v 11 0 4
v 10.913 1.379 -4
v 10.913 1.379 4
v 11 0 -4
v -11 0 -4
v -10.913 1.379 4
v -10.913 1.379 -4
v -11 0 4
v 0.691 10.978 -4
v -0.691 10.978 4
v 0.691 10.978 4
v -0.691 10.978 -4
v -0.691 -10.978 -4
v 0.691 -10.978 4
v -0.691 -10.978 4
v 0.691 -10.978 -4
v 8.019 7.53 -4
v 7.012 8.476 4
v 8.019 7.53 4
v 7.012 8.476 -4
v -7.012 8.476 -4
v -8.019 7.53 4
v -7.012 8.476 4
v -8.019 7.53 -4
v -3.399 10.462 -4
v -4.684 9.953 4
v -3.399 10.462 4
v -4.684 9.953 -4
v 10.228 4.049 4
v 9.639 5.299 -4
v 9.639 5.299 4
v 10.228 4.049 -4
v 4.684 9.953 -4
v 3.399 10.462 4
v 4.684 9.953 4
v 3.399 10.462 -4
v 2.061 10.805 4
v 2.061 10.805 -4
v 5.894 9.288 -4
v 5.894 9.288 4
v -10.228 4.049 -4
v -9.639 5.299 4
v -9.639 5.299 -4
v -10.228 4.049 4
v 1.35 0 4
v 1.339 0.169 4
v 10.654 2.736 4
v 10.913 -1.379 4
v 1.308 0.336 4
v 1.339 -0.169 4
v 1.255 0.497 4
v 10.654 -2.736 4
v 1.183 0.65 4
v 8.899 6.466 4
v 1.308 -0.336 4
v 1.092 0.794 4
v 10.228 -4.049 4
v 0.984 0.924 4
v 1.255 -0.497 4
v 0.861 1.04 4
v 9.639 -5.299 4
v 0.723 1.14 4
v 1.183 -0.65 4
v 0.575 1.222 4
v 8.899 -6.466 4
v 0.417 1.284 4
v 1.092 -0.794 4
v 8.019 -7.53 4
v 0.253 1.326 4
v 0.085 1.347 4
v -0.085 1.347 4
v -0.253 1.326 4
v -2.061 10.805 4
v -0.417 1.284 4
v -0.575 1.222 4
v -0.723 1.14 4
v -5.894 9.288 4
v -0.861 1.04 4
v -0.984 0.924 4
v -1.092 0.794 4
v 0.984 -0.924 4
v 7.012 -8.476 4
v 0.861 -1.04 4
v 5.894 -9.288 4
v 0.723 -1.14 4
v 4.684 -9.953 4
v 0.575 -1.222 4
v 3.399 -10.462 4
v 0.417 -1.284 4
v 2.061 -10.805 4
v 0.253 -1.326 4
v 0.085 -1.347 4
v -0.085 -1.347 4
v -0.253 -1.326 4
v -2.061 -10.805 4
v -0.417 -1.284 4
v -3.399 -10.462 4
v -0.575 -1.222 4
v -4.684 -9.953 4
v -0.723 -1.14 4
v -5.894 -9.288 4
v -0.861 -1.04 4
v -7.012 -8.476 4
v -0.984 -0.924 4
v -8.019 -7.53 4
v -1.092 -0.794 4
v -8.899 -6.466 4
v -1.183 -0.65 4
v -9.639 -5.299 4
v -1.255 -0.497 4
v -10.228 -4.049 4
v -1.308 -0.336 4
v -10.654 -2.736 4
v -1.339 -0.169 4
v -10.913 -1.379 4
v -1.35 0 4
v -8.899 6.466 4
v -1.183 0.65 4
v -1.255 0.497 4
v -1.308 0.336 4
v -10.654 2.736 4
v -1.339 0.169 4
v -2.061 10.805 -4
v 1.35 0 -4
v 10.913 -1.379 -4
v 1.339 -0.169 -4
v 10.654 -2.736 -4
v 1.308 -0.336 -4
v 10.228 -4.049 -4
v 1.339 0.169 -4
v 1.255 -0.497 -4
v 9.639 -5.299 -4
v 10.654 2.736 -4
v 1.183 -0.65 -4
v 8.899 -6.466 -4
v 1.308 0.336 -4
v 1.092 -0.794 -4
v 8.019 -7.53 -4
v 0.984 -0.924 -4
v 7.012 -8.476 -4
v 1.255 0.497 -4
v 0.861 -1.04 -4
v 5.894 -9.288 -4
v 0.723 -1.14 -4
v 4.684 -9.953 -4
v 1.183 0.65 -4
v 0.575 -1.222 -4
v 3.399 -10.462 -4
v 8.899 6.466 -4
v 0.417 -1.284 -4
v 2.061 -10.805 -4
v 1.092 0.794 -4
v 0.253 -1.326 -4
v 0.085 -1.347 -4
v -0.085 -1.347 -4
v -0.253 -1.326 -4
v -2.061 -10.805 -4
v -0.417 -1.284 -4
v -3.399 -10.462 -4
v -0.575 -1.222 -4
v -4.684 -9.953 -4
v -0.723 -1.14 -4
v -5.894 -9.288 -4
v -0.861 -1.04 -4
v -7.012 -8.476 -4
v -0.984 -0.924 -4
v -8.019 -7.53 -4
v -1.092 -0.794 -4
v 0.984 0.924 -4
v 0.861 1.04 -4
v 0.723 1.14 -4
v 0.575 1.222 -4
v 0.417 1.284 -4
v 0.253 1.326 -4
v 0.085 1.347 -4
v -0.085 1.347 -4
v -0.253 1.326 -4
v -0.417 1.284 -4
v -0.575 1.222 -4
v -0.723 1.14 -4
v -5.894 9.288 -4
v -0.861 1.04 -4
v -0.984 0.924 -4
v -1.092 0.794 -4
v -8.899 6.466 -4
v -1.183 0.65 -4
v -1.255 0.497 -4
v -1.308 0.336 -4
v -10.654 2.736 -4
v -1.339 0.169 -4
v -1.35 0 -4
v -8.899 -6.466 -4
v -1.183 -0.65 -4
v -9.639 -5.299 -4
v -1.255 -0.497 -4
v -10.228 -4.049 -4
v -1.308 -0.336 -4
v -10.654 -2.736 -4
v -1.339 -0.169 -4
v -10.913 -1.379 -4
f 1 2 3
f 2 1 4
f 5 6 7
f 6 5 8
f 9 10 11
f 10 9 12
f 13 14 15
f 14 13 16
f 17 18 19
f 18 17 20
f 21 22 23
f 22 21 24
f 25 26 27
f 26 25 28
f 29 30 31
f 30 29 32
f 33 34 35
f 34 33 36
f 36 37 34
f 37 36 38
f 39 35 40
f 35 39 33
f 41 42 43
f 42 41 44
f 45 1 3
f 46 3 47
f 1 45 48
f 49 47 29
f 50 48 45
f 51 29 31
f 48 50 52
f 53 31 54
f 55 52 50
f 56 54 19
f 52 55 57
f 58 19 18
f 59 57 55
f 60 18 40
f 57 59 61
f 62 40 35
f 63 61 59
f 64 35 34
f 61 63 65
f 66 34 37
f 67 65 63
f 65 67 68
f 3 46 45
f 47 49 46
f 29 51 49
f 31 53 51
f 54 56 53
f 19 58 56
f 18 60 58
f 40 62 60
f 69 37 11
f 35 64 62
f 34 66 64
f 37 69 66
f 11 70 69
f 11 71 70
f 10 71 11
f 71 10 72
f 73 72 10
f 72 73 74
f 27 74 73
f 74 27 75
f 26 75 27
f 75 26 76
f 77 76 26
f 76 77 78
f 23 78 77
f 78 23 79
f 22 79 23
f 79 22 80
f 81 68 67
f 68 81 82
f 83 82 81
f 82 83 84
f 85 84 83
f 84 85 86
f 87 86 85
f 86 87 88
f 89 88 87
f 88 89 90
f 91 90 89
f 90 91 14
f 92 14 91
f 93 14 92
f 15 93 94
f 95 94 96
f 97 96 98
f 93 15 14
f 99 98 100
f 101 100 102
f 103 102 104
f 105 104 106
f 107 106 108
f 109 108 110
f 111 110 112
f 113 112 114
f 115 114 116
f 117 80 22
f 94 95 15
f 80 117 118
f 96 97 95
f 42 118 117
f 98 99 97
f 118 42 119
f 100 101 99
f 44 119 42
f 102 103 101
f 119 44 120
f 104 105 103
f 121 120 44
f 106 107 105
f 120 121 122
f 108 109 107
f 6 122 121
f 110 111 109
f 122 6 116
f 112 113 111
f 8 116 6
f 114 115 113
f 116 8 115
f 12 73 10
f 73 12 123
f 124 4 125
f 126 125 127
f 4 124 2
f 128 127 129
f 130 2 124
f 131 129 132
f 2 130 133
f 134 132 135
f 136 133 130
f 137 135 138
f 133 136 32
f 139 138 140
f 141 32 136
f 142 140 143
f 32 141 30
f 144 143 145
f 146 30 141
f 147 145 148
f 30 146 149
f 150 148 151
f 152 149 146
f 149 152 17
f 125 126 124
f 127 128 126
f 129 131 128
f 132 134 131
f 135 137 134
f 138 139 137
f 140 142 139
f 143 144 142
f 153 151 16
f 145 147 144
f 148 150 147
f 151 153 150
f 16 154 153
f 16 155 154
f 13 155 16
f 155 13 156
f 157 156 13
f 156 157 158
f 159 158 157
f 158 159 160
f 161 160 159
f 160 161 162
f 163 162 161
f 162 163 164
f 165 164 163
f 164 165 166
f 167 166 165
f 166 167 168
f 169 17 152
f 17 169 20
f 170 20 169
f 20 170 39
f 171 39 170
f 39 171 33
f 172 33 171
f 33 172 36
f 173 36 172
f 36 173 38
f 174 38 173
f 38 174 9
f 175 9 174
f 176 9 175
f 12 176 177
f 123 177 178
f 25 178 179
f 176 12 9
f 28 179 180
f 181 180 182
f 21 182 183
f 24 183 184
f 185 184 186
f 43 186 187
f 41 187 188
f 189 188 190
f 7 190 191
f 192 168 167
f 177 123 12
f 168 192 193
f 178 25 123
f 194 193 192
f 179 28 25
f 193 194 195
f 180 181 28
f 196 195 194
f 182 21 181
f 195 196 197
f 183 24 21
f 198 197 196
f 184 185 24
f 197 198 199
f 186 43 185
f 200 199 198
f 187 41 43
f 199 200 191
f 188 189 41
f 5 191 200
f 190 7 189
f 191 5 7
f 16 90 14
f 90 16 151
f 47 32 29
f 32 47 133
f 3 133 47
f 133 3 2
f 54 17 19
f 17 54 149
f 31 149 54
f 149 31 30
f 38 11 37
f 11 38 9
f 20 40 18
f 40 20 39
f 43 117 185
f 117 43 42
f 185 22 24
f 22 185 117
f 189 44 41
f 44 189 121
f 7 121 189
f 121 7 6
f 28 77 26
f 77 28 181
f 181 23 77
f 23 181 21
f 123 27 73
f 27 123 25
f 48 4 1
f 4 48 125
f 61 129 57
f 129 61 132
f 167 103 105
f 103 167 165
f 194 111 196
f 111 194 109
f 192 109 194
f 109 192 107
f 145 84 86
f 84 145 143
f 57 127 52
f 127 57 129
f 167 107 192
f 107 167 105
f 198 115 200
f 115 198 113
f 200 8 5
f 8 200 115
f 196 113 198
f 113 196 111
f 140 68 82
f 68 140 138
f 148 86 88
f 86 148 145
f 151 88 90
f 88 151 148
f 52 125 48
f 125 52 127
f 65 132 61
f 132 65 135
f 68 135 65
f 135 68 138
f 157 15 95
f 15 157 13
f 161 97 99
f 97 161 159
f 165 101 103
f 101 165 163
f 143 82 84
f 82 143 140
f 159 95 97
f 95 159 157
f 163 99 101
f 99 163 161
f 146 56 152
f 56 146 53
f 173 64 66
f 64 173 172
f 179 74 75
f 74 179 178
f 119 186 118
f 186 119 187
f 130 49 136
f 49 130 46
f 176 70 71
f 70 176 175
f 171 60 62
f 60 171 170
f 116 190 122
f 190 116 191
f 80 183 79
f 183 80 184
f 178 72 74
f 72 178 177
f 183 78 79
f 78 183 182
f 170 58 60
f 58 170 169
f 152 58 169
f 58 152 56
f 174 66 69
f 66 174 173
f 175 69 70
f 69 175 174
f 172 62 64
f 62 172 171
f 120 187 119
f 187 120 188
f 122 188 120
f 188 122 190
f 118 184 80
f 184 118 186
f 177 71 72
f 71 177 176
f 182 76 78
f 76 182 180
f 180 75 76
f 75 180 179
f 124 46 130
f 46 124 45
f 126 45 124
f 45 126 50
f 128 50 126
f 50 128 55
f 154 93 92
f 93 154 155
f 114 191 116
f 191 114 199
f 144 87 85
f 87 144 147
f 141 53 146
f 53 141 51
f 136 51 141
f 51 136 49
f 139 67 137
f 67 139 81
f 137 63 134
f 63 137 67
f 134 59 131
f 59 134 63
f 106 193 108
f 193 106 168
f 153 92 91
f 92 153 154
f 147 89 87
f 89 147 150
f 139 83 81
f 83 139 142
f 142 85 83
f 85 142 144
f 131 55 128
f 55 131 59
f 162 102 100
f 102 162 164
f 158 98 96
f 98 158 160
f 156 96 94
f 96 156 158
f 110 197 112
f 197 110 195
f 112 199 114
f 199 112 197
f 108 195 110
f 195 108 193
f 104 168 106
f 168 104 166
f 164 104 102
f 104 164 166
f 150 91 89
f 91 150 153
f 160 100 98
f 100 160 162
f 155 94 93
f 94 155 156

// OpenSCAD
$fn = 50;


difference() {
	union() {
		translate(v = [0, 0, -4.0000000000]) {
			cylinder(h = 8, r = 11.0000000000);
		}
	}
	union() {
		translate(v = [0, 0, -100.0000000000]) {
			cylinder(h = 200, r = 1.3500000000);
		}
	}
}
